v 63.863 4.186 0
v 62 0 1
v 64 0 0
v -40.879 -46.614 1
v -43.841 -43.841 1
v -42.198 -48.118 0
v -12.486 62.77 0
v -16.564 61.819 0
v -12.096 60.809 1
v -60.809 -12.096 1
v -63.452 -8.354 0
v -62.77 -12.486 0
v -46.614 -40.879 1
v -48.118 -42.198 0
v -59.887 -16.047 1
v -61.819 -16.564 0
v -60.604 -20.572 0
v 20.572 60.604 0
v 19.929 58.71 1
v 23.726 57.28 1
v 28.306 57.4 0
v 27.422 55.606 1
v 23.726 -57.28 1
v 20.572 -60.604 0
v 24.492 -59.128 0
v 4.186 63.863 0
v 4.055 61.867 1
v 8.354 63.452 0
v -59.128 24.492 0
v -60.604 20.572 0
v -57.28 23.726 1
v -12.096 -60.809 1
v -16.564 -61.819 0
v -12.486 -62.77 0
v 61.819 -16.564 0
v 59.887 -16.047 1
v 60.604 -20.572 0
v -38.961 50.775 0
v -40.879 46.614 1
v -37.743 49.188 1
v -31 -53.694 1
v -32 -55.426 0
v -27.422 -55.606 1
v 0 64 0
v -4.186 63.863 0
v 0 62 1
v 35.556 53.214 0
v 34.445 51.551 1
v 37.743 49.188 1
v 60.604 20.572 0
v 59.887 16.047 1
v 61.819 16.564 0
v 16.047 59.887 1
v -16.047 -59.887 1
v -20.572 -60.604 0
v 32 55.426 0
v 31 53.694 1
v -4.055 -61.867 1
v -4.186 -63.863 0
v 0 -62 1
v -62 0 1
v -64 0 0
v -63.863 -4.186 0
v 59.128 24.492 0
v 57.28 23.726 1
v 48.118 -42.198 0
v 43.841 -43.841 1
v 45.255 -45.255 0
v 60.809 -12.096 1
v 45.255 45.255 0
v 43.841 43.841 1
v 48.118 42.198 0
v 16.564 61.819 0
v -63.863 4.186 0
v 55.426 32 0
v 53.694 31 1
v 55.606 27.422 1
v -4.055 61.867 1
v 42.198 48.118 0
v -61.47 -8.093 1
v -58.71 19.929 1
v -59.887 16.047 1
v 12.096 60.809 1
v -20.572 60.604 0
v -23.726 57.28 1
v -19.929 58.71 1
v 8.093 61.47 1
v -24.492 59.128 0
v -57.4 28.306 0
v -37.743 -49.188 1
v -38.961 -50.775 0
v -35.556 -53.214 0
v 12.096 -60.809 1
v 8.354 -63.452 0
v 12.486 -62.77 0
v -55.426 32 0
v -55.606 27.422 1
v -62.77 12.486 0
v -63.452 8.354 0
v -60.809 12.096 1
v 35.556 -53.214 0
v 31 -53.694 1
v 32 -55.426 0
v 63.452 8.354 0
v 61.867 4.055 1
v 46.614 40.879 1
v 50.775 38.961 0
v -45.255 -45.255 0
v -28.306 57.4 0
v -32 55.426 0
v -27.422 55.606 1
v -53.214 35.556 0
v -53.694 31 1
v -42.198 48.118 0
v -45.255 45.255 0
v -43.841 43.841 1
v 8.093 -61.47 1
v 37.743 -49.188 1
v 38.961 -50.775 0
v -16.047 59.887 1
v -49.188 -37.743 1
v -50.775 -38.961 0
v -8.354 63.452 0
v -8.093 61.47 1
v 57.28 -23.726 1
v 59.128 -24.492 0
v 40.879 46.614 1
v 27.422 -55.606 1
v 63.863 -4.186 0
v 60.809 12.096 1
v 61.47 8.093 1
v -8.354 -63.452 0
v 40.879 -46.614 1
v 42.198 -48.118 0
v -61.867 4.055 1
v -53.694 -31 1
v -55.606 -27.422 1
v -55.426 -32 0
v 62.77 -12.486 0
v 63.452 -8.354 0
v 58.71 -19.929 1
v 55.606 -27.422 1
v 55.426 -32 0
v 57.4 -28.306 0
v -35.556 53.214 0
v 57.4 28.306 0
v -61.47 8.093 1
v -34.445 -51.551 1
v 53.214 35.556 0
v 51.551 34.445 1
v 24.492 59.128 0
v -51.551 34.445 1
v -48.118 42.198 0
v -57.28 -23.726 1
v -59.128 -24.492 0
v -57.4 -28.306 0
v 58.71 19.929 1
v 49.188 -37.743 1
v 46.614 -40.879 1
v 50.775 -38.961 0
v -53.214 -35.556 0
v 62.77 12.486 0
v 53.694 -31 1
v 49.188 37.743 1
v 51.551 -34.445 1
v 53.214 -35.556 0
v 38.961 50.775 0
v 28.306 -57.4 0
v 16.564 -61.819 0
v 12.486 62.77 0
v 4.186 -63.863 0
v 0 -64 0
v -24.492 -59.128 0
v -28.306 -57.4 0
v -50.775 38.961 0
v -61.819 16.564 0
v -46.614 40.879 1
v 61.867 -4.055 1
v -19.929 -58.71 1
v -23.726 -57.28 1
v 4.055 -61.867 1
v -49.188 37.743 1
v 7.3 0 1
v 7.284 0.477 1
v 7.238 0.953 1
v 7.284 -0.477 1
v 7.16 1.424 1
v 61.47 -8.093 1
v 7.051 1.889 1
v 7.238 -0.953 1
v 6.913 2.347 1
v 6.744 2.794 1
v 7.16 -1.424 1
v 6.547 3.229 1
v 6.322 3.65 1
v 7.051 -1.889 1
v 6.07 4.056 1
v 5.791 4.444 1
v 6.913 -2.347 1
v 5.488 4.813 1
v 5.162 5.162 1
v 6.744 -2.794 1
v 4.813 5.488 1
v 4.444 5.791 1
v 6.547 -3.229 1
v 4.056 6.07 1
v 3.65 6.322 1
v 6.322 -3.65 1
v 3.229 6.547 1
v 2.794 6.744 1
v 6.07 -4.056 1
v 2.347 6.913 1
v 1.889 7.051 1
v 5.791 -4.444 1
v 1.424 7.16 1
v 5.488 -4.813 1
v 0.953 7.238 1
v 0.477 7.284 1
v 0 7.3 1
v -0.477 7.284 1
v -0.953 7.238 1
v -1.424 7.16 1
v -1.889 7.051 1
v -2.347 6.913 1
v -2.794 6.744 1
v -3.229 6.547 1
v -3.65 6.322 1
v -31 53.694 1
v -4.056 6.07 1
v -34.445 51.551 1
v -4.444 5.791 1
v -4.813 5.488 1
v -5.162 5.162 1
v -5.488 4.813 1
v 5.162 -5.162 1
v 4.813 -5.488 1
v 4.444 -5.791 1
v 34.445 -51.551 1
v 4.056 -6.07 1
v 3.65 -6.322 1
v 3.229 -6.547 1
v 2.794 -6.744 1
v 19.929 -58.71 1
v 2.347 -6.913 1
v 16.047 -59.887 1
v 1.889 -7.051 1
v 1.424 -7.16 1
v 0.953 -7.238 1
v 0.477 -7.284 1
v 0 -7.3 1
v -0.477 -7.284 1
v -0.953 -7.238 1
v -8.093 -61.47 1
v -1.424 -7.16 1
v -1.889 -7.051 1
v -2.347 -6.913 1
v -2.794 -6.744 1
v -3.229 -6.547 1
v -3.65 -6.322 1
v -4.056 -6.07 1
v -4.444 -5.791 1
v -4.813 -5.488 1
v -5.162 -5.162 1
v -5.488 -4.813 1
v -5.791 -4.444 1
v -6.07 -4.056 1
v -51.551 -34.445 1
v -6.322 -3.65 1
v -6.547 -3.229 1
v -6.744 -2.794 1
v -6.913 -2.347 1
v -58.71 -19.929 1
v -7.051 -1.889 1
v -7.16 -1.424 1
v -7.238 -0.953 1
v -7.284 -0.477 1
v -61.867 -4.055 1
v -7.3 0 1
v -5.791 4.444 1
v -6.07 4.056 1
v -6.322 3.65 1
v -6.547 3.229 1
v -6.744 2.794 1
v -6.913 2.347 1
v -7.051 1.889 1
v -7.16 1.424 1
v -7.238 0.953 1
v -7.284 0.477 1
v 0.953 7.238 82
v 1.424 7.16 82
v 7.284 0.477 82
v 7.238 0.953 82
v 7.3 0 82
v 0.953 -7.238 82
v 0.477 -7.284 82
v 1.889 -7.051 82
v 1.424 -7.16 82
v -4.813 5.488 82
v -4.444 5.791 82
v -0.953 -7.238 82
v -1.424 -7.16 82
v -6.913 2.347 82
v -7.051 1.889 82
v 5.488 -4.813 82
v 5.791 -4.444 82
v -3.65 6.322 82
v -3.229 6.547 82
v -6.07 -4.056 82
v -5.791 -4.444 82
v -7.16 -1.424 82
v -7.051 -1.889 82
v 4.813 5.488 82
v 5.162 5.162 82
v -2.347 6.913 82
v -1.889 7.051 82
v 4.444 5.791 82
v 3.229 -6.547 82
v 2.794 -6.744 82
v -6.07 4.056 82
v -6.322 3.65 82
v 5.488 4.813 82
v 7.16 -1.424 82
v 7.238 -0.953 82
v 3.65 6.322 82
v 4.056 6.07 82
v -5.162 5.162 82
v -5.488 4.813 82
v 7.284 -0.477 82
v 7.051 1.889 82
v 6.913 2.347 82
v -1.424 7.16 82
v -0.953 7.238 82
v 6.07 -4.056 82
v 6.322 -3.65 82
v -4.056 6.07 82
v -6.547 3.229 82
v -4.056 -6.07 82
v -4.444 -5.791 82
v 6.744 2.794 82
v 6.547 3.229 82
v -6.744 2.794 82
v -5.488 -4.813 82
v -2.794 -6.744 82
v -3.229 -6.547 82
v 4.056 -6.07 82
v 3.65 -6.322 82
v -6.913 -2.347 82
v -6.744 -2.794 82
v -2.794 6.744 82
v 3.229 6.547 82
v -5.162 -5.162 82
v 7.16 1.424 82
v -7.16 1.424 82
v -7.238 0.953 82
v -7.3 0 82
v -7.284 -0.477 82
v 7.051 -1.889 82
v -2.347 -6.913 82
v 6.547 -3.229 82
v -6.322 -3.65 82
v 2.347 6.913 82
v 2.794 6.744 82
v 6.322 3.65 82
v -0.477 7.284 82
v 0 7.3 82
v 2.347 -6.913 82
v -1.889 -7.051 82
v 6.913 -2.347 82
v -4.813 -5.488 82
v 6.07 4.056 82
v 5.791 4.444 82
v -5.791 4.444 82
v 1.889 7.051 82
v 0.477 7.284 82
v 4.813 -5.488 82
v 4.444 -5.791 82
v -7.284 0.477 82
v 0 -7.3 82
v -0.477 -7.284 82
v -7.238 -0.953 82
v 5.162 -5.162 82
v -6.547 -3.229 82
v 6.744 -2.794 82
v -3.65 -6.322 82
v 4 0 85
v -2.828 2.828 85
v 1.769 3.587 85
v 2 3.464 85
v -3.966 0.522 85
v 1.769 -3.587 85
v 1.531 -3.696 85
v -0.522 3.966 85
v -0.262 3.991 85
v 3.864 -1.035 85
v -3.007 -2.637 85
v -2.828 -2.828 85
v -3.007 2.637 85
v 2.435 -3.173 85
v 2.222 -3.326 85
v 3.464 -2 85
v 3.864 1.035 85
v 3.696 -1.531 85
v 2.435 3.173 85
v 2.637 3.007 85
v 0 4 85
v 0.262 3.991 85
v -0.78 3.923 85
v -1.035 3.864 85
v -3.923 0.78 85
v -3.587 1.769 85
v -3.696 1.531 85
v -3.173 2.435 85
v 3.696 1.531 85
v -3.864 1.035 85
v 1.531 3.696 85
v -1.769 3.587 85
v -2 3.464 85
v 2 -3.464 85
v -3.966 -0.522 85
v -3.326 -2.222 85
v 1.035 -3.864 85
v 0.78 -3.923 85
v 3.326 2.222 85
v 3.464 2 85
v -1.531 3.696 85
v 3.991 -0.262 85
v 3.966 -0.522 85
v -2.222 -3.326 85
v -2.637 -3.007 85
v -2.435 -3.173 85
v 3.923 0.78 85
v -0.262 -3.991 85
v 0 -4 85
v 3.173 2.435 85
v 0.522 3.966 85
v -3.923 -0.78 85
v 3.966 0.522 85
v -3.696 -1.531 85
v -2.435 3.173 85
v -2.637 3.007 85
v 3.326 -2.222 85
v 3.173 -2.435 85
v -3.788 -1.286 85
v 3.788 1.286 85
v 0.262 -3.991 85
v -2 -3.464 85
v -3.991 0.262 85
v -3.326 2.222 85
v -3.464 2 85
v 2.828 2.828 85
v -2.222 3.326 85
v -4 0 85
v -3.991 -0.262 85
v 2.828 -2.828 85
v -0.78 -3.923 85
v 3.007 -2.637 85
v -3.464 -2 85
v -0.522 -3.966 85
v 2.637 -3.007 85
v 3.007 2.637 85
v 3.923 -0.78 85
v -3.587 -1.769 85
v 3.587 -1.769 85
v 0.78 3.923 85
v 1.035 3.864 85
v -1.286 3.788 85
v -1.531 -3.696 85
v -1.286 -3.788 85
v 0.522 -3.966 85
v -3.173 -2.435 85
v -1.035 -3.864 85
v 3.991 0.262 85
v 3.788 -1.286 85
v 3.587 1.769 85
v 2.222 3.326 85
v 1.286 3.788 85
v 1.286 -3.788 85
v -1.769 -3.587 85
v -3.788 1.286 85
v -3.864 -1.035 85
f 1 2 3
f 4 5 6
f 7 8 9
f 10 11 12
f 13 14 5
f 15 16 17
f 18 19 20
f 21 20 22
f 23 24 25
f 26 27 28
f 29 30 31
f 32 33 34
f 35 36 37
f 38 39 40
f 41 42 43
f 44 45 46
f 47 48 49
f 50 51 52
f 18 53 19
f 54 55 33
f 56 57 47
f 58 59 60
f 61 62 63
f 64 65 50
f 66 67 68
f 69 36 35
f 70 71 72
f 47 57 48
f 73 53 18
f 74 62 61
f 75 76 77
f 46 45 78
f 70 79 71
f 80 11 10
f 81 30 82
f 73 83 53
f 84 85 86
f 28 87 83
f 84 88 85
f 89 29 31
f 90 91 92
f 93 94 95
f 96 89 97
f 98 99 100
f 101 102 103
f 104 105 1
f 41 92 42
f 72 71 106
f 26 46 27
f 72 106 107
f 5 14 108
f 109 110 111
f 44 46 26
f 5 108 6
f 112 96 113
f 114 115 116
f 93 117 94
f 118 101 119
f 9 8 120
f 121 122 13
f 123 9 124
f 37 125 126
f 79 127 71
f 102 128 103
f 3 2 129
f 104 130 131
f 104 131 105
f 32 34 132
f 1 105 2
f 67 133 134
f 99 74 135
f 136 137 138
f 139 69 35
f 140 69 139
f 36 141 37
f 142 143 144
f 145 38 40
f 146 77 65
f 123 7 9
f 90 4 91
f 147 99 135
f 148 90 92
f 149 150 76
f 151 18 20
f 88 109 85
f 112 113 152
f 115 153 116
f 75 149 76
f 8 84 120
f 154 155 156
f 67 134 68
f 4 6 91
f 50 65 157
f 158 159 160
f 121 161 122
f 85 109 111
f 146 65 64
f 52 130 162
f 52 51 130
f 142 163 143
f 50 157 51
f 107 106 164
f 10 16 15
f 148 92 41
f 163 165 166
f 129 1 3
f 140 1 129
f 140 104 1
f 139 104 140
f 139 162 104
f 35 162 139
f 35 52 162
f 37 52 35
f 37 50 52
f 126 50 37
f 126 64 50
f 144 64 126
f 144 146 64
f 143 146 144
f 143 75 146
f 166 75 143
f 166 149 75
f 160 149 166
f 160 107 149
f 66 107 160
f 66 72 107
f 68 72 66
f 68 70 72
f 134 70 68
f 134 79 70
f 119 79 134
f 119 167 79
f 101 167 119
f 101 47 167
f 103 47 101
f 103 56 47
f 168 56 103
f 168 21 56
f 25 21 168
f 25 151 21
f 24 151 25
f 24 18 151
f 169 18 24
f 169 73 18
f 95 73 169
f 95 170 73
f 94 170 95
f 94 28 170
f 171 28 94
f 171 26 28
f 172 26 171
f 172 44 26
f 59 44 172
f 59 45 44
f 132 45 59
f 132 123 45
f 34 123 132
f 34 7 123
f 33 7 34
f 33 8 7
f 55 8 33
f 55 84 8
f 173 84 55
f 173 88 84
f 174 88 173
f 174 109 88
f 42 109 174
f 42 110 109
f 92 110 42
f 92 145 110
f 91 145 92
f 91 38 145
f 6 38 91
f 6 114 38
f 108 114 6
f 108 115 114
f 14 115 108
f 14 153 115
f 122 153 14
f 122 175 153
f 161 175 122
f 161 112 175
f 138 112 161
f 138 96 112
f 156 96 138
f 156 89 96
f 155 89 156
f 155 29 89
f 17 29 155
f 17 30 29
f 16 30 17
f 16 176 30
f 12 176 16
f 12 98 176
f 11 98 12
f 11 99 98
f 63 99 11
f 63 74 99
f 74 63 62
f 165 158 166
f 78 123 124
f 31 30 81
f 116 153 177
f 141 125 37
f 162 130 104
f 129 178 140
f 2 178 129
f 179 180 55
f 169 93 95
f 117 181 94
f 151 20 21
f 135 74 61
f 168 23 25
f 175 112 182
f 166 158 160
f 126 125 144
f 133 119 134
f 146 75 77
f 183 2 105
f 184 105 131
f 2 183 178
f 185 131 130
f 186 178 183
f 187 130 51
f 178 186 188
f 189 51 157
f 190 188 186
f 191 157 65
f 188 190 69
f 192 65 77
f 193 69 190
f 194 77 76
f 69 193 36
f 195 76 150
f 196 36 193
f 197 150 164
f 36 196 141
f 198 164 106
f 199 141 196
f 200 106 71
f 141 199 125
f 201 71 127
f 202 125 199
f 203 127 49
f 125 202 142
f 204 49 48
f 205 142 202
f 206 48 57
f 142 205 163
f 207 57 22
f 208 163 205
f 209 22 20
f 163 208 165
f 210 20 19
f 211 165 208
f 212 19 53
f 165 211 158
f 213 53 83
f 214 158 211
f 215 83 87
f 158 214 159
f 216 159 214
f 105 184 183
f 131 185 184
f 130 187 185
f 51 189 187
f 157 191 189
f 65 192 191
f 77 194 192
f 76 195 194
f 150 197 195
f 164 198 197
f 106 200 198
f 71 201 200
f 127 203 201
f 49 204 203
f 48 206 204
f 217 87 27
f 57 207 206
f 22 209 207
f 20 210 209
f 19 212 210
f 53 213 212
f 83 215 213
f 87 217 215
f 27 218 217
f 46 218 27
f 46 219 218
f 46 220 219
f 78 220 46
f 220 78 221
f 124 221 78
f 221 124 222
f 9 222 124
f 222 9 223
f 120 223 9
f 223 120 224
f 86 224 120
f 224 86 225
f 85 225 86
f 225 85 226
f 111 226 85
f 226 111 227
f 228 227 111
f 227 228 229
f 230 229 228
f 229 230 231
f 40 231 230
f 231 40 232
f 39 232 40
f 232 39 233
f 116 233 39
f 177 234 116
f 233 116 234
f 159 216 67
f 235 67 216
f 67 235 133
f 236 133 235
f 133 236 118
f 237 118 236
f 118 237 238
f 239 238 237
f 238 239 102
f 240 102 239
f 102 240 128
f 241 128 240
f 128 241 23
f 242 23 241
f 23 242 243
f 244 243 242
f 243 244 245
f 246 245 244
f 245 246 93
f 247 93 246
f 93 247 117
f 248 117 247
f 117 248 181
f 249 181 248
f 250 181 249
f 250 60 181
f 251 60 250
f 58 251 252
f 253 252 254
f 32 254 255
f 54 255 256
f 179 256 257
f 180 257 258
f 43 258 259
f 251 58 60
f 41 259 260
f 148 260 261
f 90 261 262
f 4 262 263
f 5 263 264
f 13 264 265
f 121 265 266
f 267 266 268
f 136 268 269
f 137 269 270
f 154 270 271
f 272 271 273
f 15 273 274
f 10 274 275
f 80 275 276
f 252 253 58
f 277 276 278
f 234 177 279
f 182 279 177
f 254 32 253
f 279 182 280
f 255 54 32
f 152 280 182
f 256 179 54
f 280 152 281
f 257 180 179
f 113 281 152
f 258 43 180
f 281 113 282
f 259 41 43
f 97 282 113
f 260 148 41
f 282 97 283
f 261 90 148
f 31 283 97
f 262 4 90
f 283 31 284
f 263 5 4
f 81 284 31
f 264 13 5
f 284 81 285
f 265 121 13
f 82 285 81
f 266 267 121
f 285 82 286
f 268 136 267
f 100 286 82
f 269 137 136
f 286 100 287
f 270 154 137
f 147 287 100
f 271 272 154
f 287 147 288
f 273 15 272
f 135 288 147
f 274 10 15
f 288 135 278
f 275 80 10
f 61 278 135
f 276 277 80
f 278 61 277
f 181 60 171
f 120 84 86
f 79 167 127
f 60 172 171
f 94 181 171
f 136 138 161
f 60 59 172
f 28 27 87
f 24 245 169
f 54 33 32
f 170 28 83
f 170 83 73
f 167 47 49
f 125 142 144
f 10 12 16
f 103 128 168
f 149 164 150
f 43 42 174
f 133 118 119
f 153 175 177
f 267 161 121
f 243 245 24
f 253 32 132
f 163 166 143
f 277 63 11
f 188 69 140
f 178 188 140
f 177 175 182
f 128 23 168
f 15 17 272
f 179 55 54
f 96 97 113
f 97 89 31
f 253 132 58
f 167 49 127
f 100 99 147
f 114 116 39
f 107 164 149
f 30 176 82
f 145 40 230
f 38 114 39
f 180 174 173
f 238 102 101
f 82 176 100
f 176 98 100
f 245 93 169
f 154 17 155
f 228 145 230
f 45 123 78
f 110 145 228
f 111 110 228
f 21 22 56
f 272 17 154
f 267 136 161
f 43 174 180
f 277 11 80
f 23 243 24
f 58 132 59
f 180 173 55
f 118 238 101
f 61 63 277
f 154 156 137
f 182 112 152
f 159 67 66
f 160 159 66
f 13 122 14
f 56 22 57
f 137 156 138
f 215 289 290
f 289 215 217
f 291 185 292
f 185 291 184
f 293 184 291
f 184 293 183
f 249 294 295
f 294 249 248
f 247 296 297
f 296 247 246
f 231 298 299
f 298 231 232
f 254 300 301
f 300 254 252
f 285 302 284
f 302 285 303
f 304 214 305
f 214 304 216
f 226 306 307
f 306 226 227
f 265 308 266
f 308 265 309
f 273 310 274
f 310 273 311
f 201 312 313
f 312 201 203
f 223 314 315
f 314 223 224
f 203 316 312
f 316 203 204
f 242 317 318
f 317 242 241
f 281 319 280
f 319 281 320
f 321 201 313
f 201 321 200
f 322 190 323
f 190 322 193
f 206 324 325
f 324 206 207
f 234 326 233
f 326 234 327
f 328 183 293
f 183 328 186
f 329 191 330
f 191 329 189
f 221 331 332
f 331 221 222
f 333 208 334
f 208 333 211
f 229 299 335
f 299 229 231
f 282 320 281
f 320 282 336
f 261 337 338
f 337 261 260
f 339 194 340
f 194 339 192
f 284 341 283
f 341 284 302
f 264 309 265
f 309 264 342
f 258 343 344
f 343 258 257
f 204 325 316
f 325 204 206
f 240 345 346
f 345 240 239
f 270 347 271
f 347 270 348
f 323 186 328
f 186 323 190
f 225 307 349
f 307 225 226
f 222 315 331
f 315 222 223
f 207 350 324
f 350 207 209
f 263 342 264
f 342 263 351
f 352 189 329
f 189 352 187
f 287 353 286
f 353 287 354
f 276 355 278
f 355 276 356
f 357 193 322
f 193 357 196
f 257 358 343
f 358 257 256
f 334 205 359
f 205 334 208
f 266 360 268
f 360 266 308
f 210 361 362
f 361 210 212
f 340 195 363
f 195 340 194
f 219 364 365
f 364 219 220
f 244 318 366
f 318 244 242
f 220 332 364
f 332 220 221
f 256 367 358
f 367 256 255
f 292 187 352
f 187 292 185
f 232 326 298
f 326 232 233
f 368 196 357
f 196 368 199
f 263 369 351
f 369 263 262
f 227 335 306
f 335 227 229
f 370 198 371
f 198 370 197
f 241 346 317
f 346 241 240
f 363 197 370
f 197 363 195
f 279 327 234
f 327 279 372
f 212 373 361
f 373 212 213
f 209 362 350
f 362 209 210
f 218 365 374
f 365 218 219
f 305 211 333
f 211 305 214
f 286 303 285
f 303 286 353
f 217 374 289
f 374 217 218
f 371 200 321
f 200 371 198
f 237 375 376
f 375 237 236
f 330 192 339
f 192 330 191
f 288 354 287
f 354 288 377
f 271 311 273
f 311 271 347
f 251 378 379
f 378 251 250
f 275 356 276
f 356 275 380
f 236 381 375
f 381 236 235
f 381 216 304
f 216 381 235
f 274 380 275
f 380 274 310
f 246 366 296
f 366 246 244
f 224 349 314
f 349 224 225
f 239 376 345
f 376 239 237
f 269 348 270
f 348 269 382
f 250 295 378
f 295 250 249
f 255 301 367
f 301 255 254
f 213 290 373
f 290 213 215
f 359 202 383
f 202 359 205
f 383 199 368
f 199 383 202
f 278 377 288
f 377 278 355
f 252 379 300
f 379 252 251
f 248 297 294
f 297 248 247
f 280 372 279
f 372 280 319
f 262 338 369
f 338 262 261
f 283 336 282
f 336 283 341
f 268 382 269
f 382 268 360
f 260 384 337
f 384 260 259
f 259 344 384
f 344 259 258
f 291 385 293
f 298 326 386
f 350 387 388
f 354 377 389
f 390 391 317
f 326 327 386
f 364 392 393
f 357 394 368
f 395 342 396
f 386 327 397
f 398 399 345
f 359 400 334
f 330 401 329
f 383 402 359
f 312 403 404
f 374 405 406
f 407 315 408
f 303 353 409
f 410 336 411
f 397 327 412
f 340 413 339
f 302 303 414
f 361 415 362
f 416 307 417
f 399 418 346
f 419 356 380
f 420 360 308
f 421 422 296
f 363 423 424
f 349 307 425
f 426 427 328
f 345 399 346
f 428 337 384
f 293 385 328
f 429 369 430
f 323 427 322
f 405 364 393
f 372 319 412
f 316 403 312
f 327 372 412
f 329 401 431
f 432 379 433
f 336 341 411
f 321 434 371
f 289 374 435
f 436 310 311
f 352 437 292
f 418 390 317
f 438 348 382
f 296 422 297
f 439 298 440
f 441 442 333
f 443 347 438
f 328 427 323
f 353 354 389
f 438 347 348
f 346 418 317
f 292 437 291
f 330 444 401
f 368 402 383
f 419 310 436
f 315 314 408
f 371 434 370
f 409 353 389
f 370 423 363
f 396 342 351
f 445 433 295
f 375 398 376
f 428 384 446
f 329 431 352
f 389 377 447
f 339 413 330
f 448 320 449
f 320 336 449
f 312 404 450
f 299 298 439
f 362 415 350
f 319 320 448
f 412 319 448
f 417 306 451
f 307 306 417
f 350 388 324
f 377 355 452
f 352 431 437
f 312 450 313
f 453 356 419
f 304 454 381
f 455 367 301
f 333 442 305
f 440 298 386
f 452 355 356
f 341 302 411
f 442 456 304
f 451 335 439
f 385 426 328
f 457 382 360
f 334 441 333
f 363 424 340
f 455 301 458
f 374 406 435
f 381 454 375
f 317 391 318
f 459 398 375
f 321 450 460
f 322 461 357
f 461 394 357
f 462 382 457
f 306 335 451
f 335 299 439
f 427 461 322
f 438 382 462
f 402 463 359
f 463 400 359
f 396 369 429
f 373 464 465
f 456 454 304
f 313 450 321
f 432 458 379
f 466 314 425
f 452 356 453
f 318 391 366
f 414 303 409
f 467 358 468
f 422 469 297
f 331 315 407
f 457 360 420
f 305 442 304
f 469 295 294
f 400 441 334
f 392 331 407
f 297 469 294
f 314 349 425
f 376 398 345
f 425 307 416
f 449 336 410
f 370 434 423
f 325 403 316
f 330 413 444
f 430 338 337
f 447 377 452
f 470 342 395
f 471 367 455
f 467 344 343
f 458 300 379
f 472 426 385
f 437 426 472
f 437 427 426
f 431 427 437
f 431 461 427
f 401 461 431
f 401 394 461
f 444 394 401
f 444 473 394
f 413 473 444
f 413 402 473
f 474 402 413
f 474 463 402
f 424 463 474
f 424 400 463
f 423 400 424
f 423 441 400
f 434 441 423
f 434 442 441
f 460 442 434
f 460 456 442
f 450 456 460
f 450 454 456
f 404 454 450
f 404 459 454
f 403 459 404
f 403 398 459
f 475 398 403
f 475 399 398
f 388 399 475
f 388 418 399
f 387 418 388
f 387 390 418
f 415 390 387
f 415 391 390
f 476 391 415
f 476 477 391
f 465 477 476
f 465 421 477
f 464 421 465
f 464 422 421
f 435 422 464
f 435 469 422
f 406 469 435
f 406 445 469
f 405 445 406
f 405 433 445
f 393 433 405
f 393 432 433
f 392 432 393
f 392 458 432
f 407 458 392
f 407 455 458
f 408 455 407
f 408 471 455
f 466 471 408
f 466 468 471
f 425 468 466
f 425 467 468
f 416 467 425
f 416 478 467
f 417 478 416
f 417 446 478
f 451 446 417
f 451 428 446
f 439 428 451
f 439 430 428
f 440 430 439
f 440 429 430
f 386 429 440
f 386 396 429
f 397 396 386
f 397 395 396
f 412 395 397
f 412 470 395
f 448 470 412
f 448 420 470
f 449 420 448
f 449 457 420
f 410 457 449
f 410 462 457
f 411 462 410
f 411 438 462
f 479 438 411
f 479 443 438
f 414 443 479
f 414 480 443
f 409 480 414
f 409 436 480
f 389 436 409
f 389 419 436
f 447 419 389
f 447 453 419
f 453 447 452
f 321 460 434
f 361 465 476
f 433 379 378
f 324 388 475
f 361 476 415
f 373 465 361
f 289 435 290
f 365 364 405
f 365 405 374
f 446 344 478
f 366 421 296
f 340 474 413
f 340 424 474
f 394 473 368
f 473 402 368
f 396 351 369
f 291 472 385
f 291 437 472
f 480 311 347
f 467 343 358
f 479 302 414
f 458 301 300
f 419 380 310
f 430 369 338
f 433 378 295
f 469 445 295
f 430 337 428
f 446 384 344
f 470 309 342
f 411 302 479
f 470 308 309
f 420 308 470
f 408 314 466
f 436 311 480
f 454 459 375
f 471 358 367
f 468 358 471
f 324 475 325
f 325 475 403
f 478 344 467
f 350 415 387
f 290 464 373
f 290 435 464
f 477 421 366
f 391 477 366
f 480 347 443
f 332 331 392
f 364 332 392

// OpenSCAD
color("red")
    translate([0, 0, 0]) {
        union() {
            cylinder(h=5, r1=64, r2=62, true, $fn=96); 
            //62mm wide, 85mm high, 14.6mm post  
            cylinder(h=82, r=7.3, center=false, $fn=96);
            translate([0,0,82])
            cylinder(h=3, r1=7.3, r2=4, center=false, $fn=96);
        } 
    }
